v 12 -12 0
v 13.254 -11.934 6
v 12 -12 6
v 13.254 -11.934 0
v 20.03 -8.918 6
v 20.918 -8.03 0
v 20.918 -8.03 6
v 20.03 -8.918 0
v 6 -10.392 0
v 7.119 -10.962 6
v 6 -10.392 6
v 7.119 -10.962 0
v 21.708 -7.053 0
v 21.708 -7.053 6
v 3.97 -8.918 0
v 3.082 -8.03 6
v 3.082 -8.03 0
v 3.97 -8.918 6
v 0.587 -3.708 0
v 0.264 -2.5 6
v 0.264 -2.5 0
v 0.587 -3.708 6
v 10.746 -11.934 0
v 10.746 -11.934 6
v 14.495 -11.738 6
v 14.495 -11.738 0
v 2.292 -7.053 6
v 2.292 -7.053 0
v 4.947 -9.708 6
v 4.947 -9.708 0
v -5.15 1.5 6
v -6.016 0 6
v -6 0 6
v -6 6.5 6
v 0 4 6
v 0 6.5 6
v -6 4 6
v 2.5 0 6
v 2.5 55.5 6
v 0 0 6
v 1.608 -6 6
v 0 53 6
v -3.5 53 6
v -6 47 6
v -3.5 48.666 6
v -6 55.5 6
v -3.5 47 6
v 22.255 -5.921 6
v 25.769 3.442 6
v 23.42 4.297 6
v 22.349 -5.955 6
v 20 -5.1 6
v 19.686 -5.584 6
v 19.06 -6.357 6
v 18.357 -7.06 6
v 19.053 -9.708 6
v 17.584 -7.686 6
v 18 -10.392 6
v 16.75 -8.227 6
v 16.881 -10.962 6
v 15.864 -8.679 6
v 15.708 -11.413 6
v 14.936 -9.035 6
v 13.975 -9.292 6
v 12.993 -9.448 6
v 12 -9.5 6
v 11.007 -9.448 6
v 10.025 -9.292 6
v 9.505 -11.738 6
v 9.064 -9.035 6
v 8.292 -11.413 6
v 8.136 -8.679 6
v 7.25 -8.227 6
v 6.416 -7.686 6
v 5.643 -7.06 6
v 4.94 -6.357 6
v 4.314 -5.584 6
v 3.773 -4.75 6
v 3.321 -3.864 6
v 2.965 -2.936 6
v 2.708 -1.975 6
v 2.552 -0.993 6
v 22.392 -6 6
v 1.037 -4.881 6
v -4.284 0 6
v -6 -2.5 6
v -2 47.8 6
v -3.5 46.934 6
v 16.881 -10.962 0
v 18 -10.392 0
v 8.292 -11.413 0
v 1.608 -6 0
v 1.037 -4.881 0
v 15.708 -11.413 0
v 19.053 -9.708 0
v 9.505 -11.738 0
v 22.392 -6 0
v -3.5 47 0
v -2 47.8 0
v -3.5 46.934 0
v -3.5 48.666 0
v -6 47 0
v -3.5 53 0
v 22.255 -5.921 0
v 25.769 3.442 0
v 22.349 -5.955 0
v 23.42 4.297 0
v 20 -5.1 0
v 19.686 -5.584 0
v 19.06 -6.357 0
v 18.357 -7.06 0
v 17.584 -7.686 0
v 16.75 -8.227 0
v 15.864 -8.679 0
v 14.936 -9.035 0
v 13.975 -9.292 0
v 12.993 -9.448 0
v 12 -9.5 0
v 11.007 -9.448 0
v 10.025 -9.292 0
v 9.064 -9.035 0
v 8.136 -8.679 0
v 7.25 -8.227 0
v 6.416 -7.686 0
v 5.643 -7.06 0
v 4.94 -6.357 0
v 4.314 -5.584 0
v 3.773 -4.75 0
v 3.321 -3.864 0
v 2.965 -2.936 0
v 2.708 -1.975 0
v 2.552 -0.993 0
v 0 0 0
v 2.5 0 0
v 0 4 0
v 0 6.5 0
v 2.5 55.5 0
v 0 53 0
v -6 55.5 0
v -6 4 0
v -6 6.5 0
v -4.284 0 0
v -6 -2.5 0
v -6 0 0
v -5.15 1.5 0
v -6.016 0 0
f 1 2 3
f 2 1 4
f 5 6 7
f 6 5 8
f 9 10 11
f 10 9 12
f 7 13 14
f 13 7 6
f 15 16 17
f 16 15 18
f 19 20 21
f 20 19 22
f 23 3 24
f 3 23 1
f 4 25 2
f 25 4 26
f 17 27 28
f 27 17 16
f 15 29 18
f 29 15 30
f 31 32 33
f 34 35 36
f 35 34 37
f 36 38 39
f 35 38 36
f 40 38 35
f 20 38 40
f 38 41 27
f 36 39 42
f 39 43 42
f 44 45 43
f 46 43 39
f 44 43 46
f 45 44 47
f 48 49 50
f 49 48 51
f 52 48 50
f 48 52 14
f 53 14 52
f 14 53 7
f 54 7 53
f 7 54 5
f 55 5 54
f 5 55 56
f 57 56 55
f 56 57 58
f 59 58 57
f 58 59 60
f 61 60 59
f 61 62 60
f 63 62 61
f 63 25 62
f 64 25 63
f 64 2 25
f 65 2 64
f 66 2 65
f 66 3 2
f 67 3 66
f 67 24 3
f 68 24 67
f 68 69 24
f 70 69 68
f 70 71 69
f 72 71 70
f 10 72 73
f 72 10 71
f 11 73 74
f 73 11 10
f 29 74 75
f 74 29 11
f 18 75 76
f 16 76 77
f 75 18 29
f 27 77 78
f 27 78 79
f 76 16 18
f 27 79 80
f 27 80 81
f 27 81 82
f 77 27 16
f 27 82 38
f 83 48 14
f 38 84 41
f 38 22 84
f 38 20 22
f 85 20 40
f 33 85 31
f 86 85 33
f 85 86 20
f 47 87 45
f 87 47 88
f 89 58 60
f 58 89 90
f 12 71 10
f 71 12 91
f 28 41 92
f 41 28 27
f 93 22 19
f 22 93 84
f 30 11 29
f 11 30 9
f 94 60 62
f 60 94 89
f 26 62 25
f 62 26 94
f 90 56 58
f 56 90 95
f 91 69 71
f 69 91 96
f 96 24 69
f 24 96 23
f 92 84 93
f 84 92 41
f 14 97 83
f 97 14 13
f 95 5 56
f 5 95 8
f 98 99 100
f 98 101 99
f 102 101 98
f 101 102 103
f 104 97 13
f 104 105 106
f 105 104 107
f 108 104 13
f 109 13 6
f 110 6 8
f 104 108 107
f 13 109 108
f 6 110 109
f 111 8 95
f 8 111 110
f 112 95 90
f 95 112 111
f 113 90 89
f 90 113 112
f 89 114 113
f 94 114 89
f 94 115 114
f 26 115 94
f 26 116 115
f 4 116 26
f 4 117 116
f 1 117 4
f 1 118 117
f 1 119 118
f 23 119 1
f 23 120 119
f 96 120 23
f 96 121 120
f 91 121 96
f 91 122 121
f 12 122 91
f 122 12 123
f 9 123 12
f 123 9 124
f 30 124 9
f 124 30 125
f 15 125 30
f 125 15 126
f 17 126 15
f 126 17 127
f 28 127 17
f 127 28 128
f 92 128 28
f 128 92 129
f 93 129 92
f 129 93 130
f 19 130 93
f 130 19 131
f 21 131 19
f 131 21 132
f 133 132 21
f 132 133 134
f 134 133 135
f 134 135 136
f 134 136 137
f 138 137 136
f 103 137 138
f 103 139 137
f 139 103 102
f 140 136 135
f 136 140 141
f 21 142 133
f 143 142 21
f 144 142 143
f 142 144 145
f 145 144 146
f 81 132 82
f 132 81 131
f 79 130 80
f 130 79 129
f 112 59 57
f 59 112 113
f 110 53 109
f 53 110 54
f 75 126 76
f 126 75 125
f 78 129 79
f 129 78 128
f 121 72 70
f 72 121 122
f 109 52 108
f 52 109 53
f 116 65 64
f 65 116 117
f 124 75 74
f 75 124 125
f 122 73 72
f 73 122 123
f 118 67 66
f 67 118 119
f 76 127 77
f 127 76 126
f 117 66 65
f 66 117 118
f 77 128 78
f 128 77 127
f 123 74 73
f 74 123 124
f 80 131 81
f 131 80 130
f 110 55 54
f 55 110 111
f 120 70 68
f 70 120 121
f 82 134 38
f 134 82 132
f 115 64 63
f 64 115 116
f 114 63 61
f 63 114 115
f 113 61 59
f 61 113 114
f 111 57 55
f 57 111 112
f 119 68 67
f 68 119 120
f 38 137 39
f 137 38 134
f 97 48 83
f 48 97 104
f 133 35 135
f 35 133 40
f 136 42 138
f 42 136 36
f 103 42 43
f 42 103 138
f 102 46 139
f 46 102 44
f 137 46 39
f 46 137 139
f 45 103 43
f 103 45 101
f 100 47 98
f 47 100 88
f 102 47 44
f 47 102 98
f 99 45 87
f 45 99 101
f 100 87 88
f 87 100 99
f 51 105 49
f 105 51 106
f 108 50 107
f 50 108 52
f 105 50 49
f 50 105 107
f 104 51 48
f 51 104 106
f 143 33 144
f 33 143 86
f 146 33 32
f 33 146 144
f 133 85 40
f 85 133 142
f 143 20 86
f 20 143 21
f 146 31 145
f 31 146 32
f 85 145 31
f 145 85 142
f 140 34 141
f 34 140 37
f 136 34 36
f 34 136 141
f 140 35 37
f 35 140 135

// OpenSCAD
echo(version=version());
// Base Config
base_W = 6;
base_H = 53;
// fix num
base_T = 2.5;
baee_R = 12;
$fn = 60;

// main hock body
cube(size=[base_T, base_H, base_W], center=false);
// Top hock
translate([-6, base_H, 0]) cube(size=[8.5, base_T, base_W], center=false);
translate([-6, base_H - 6, 0]) cube(size=[base_T, 6.5, base_W], center=false);
translate([-3, base_H - 5.2, 0]) cylinder(h=base_W, r=1, center=false, $fn=3);
// stable parts
// main hock r
translate([12, 0, 0]) difference() {
    cylinder(h=base_W, r=baee_R, center=false);
    cylinder(h=base_W + 2, r=baee_R-base_T, center=false);
    translate([-9.5, 0, -1]) cube(size=[25, 14, base_W + 2], center=false);
    translate([0, 0, -1]) rotate([0, 0, -30]) cube(size=[25, 14, base_W + 2], center=false);
}
// main hock extend
translate([20, -5.1, 0]) rotate([0, 0, -20]) cube(size=[base_T, 10, base_W], center=false);
// bottom fuck
translate([-6, -2.5, 0]) cube(size=[8.5, base_T, base_W], center=false);
translate([-5.15, 0.5, 0]) rotate([0, 0, 90]) cylinder(h=base_W, r=1, center=false, $fn=3);
translate([-6, 4, 0]) cube(size=[8.5, base_T, base_W], center=false);
